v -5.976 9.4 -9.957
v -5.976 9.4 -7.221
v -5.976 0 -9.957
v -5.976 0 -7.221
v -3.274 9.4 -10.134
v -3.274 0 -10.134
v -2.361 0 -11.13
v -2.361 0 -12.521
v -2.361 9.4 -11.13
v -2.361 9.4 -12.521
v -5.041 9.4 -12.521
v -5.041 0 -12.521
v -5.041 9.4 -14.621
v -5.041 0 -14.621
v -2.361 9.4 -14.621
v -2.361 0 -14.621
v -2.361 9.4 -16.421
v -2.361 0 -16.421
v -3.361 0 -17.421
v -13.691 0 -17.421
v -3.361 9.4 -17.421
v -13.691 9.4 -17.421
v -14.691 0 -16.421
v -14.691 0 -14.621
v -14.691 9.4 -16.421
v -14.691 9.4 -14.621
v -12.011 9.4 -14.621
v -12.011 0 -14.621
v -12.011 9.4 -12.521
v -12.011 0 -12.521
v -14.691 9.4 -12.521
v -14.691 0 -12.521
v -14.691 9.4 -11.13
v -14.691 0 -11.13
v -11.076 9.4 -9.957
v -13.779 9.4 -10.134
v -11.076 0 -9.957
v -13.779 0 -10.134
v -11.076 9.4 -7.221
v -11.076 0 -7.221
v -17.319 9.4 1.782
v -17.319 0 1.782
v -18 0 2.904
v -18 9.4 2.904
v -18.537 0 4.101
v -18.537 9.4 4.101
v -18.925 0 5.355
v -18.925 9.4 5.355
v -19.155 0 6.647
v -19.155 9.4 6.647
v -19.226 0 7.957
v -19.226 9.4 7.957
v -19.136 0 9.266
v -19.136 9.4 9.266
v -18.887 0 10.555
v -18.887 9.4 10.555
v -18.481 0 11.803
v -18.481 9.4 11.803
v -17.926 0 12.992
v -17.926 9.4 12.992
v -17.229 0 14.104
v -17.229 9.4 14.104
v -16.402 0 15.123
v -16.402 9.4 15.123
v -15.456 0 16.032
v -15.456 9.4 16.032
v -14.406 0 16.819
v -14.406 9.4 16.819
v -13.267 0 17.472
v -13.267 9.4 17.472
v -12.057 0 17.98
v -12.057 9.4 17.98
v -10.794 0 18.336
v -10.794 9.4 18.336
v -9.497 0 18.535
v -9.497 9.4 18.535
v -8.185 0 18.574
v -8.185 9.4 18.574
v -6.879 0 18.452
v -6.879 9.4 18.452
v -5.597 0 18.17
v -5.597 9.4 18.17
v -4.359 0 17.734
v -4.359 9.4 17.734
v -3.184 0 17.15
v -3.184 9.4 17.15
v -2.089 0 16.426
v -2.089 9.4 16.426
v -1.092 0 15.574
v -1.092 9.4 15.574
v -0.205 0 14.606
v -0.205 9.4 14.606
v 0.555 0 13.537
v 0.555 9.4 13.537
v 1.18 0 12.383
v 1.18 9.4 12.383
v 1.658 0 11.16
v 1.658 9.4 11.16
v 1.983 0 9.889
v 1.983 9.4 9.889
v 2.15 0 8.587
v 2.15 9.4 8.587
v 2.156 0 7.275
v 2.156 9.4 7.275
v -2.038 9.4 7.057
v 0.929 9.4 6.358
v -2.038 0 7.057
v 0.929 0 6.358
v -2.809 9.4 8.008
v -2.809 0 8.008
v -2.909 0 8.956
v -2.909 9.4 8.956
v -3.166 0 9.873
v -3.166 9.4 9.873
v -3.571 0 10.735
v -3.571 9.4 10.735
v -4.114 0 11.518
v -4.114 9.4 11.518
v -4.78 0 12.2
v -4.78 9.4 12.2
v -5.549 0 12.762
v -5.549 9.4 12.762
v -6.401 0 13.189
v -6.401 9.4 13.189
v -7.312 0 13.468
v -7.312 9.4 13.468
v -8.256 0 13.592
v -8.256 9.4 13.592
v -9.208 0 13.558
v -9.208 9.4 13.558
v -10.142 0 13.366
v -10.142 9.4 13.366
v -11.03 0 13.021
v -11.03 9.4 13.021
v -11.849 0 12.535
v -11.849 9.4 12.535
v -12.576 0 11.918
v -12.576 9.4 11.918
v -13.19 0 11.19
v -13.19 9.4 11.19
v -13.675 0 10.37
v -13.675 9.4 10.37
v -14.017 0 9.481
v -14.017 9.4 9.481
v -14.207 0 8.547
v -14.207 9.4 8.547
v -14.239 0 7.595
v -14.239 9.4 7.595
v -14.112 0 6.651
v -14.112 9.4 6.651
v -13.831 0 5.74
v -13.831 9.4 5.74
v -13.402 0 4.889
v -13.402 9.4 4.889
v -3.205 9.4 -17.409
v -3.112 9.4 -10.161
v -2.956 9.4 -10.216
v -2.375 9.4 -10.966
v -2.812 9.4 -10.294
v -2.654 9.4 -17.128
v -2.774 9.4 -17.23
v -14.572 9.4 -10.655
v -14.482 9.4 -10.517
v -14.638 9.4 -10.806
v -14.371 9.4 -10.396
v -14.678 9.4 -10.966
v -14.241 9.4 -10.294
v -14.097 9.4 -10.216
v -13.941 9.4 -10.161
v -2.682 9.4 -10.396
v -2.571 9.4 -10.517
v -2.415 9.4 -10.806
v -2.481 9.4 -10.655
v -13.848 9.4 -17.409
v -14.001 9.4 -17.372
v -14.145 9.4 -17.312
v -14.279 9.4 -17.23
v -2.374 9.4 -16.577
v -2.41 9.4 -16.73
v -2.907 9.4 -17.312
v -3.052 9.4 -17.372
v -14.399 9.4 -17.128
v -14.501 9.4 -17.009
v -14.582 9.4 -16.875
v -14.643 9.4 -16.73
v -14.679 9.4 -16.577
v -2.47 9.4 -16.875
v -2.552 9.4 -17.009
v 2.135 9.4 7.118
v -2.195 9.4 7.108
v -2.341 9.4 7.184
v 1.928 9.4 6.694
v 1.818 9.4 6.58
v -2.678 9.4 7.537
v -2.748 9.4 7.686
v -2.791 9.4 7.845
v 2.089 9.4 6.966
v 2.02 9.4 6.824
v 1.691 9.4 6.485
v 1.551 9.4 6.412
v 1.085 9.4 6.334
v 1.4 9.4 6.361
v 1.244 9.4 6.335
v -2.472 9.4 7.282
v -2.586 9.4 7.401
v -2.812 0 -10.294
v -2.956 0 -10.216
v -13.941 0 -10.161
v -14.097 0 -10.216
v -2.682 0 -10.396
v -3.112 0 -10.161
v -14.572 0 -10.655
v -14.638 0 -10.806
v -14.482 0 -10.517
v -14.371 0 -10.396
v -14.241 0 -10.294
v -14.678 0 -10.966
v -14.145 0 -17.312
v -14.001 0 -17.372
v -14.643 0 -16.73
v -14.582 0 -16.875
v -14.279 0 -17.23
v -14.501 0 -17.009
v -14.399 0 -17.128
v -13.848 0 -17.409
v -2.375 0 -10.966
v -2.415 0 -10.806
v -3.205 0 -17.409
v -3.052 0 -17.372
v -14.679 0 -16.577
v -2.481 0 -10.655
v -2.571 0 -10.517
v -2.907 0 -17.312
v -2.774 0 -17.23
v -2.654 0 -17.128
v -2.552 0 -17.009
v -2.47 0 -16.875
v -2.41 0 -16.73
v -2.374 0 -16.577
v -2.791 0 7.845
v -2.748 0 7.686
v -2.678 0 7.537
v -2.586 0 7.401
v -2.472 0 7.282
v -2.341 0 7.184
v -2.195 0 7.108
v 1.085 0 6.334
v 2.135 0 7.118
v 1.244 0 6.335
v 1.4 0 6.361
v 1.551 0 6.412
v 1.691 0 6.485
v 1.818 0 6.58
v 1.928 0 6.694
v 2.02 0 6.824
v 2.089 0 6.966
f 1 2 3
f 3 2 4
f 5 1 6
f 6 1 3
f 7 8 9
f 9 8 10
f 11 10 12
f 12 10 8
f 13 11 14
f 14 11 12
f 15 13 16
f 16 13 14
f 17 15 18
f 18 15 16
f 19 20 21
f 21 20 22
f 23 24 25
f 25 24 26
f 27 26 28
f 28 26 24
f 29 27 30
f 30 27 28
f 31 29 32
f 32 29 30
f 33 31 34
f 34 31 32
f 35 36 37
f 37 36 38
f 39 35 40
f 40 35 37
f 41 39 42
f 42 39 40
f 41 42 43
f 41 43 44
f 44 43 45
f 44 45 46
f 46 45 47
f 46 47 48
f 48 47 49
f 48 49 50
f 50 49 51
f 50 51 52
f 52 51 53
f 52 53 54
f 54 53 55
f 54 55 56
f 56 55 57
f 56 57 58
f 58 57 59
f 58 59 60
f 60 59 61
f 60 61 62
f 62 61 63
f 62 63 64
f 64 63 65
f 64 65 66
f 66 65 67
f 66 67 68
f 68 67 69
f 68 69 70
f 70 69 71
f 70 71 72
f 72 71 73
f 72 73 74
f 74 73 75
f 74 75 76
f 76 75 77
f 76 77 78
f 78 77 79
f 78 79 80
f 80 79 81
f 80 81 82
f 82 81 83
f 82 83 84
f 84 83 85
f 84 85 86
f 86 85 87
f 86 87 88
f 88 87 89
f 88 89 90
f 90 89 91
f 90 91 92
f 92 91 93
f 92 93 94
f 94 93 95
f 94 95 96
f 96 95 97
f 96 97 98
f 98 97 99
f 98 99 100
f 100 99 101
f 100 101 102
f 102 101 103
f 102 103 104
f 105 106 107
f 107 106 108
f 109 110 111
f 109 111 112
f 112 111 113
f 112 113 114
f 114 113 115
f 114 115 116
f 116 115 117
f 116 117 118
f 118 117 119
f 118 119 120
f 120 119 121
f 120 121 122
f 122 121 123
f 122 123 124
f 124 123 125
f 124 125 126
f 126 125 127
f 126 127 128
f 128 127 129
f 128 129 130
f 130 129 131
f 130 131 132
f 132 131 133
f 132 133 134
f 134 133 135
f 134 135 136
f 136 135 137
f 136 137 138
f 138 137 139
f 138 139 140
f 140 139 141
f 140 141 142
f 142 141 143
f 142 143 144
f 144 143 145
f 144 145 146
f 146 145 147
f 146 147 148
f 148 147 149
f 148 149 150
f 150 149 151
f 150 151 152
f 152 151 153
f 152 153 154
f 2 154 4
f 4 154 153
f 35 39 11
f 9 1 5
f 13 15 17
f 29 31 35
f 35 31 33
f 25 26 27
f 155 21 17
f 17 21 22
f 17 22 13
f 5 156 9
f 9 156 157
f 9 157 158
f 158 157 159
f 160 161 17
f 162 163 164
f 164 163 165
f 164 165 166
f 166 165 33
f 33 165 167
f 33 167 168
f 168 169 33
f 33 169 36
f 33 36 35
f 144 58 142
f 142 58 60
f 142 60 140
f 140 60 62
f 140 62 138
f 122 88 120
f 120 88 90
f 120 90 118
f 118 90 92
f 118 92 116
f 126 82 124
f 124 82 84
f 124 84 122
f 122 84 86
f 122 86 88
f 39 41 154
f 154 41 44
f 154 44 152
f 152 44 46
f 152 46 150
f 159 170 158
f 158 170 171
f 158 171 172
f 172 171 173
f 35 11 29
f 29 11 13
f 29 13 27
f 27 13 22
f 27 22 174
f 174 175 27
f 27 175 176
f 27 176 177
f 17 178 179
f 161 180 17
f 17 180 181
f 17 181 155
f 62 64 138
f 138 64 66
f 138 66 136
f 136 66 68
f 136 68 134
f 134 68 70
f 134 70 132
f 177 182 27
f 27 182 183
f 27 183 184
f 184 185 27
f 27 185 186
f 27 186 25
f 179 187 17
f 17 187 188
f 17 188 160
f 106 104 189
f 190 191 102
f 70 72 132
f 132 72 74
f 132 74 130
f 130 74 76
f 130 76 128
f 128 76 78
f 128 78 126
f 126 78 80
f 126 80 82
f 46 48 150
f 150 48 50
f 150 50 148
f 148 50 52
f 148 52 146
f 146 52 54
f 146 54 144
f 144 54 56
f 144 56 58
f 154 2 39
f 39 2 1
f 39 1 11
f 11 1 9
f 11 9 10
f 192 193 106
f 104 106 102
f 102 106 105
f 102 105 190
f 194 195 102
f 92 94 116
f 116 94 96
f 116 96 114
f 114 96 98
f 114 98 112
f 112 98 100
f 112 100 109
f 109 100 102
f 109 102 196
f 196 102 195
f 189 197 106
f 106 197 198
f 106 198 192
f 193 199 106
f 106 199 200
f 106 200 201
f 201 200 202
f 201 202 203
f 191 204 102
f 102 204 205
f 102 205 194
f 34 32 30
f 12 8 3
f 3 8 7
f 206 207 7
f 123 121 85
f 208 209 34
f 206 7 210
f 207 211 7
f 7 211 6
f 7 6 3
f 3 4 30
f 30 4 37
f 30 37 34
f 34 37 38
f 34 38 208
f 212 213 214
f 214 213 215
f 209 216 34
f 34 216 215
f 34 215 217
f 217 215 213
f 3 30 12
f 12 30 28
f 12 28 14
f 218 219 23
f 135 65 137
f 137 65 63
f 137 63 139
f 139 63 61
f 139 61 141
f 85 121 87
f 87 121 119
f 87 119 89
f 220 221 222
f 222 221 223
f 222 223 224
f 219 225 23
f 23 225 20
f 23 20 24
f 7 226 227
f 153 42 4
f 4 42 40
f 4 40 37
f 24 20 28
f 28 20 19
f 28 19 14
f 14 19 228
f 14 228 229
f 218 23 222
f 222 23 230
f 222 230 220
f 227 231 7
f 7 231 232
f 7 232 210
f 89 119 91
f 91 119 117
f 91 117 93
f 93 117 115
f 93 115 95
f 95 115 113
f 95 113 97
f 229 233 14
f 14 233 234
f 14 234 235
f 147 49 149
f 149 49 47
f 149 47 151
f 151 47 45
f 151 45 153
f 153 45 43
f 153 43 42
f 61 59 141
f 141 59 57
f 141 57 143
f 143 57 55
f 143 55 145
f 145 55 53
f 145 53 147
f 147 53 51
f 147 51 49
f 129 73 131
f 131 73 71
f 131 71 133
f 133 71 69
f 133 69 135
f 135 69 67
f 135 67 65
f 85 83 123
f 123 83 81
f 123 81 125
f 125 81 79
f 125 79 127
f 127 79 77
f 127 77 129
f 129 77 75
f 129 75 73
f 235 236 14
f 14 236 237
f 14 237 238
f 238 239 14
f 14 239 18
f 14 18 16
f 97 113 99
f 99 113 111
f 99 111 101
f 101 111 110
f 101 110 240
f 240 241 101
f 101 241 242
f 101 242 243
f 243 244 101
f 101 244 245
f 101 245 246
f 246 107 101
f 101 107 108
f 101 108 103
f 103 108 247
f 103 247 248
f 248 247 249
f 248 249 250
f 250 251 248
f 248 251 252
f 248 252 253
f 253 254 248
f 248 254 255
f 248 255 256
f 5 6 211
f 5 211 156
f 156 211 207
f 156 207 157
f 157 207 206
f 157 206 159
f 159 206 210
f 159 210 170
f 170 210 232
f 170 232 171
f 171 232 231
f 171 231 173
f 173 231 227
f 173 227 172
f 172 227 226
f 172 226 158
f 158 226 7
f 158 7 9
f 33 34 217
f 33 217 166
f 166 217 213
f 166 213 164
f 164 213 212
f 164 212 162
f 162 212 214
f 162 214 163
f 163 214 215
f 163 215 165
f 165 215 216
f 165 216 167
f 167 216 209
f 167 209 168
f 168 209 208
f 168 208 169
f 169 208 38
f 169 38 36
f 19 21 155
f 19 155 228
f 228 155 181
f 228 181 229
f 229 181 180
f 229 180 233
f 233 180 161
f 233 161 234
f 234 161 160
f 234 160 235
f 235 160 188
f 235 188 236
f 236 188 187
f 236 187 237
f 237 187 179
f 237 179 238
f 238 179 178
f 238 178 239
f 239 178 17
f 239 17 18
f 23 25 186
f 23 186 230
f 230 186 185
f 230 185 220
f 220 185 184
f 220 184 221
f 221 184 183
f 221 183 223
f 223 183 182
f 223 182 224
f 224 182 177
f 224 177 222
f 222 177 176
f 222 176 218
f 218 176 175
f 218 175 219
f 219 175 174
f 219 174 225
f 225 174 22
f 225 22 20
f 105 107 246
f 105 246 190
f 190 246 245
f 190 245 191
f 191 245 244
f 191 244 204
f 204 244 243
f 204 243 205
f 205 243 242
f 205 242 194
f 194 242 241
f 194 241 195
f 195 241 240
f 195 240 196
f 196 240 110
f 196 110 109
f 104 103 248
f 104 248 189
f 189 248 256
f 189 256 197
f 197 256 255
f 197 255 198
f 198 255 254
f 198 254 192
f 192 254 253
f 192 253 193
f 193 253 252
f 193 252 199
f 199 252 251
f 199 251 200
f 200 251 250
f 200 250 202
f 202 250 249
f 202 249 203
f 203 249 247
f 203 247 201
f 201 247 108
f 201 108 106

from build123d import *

# Parameters (mm, degrees)
ESTRUSIONE_ESTRUSIONE1_DEPTH = 9.4
RACCORDO1_R                  = 1


with BuildPart() as part:
    # Schizzo1 → Estrusione-Estrusione1 (new body)
    with BuildSketch(Plane(origin=(0, 0, 0), x_dir=(1, 0, 0), z_dir=(0, 1, 0))):
        with BuildLine():
            Line((-2.361490309, 17.420855221), (-14.691490309, 17.420855221))
            Line((-14.691490309, 17.420855221), (-14.691490309, 14.620855221))
            Line((-14.691490309, 14.620855221), (-12.011490309, 14.620855221))
            Line((-12.011490309, 14.620855221), (-12.011490309, 12.520855221))
            Line((-12.011490309, 12.520855221), (-14.691490309, 12.520855221))
            Line((-14.691490309, 12.520855221), (-14.691490309, 10.220855221))
            ThreePointArc((-14.691490309, 10.220855221), (-12.885979413, 10.061873727), (-11.076490309, 9.957499929))
            Line((-11.076490309, 9.957499929), (-11.076490309, 7.220855221))
            Line((-11.076490309, 7.220855221), (-17.319309854, -1.781905696))
            ThreePointArc((-17.319309854, -1.781905696), (-10.857687466, -18.322109867), (2.024570257, -6.100066099))
            Line((2.024570257, -6.100066099), (-2.842159863, -7.246773536))
            ThreePointArc((-2.842159863, -7.246773536), (-9.772569078, -13.461151023), (-13.402257337, -4.889428758))
            Line((-13.402257337, -4.889428758), (-5.976490309, 7.220855221))
            Line((-5.976490309, 7.220855221), (-5.976490309, 9.957499929))
            ThreePointArc((-5.976490309, 9.957499929), (-4.167001204, 10.061873727), (-2.361490309, 10.220855221))
            Line((-2.361490309, 10.220855221), (-2.361490309, 12.520855221))
            Line((-2.361490309, 12.520855221), (-5.041490309, 12.520855221))
            Line((-5.041490309, 12.520855221), (-5.041490309, 14.620855221))
            Line((-5.041490309, 14.620855221), (-2.361490309, 14.620855221))
            Line((-2.361490309, 14.620855221), (-2.361490309, 17.420855221))
        make_face()
    extrude(amount=ESTRUSIONE_ESTRUSIONE1_DEPTH)

    # Raccordo1
    raccordo1_edges = [part.edges().sort_by_distance(p)[0] for p in [
        (-2.842159863, 4.7, 7.246773536),
        (2.024570257, 4.7, 6.100066099),
        (-14.691490309, 4.7, -10.220855221),
        (-14.691490309, 4.7, -17.420855221),
        (-2.361490309, 4.7, -17.420855221),
        (-2.361490309, 4.7, -10.220855221),
    ]]
    fillet(raccordo1_edges, radius=RACCORDO1_R)


solid = part.part
